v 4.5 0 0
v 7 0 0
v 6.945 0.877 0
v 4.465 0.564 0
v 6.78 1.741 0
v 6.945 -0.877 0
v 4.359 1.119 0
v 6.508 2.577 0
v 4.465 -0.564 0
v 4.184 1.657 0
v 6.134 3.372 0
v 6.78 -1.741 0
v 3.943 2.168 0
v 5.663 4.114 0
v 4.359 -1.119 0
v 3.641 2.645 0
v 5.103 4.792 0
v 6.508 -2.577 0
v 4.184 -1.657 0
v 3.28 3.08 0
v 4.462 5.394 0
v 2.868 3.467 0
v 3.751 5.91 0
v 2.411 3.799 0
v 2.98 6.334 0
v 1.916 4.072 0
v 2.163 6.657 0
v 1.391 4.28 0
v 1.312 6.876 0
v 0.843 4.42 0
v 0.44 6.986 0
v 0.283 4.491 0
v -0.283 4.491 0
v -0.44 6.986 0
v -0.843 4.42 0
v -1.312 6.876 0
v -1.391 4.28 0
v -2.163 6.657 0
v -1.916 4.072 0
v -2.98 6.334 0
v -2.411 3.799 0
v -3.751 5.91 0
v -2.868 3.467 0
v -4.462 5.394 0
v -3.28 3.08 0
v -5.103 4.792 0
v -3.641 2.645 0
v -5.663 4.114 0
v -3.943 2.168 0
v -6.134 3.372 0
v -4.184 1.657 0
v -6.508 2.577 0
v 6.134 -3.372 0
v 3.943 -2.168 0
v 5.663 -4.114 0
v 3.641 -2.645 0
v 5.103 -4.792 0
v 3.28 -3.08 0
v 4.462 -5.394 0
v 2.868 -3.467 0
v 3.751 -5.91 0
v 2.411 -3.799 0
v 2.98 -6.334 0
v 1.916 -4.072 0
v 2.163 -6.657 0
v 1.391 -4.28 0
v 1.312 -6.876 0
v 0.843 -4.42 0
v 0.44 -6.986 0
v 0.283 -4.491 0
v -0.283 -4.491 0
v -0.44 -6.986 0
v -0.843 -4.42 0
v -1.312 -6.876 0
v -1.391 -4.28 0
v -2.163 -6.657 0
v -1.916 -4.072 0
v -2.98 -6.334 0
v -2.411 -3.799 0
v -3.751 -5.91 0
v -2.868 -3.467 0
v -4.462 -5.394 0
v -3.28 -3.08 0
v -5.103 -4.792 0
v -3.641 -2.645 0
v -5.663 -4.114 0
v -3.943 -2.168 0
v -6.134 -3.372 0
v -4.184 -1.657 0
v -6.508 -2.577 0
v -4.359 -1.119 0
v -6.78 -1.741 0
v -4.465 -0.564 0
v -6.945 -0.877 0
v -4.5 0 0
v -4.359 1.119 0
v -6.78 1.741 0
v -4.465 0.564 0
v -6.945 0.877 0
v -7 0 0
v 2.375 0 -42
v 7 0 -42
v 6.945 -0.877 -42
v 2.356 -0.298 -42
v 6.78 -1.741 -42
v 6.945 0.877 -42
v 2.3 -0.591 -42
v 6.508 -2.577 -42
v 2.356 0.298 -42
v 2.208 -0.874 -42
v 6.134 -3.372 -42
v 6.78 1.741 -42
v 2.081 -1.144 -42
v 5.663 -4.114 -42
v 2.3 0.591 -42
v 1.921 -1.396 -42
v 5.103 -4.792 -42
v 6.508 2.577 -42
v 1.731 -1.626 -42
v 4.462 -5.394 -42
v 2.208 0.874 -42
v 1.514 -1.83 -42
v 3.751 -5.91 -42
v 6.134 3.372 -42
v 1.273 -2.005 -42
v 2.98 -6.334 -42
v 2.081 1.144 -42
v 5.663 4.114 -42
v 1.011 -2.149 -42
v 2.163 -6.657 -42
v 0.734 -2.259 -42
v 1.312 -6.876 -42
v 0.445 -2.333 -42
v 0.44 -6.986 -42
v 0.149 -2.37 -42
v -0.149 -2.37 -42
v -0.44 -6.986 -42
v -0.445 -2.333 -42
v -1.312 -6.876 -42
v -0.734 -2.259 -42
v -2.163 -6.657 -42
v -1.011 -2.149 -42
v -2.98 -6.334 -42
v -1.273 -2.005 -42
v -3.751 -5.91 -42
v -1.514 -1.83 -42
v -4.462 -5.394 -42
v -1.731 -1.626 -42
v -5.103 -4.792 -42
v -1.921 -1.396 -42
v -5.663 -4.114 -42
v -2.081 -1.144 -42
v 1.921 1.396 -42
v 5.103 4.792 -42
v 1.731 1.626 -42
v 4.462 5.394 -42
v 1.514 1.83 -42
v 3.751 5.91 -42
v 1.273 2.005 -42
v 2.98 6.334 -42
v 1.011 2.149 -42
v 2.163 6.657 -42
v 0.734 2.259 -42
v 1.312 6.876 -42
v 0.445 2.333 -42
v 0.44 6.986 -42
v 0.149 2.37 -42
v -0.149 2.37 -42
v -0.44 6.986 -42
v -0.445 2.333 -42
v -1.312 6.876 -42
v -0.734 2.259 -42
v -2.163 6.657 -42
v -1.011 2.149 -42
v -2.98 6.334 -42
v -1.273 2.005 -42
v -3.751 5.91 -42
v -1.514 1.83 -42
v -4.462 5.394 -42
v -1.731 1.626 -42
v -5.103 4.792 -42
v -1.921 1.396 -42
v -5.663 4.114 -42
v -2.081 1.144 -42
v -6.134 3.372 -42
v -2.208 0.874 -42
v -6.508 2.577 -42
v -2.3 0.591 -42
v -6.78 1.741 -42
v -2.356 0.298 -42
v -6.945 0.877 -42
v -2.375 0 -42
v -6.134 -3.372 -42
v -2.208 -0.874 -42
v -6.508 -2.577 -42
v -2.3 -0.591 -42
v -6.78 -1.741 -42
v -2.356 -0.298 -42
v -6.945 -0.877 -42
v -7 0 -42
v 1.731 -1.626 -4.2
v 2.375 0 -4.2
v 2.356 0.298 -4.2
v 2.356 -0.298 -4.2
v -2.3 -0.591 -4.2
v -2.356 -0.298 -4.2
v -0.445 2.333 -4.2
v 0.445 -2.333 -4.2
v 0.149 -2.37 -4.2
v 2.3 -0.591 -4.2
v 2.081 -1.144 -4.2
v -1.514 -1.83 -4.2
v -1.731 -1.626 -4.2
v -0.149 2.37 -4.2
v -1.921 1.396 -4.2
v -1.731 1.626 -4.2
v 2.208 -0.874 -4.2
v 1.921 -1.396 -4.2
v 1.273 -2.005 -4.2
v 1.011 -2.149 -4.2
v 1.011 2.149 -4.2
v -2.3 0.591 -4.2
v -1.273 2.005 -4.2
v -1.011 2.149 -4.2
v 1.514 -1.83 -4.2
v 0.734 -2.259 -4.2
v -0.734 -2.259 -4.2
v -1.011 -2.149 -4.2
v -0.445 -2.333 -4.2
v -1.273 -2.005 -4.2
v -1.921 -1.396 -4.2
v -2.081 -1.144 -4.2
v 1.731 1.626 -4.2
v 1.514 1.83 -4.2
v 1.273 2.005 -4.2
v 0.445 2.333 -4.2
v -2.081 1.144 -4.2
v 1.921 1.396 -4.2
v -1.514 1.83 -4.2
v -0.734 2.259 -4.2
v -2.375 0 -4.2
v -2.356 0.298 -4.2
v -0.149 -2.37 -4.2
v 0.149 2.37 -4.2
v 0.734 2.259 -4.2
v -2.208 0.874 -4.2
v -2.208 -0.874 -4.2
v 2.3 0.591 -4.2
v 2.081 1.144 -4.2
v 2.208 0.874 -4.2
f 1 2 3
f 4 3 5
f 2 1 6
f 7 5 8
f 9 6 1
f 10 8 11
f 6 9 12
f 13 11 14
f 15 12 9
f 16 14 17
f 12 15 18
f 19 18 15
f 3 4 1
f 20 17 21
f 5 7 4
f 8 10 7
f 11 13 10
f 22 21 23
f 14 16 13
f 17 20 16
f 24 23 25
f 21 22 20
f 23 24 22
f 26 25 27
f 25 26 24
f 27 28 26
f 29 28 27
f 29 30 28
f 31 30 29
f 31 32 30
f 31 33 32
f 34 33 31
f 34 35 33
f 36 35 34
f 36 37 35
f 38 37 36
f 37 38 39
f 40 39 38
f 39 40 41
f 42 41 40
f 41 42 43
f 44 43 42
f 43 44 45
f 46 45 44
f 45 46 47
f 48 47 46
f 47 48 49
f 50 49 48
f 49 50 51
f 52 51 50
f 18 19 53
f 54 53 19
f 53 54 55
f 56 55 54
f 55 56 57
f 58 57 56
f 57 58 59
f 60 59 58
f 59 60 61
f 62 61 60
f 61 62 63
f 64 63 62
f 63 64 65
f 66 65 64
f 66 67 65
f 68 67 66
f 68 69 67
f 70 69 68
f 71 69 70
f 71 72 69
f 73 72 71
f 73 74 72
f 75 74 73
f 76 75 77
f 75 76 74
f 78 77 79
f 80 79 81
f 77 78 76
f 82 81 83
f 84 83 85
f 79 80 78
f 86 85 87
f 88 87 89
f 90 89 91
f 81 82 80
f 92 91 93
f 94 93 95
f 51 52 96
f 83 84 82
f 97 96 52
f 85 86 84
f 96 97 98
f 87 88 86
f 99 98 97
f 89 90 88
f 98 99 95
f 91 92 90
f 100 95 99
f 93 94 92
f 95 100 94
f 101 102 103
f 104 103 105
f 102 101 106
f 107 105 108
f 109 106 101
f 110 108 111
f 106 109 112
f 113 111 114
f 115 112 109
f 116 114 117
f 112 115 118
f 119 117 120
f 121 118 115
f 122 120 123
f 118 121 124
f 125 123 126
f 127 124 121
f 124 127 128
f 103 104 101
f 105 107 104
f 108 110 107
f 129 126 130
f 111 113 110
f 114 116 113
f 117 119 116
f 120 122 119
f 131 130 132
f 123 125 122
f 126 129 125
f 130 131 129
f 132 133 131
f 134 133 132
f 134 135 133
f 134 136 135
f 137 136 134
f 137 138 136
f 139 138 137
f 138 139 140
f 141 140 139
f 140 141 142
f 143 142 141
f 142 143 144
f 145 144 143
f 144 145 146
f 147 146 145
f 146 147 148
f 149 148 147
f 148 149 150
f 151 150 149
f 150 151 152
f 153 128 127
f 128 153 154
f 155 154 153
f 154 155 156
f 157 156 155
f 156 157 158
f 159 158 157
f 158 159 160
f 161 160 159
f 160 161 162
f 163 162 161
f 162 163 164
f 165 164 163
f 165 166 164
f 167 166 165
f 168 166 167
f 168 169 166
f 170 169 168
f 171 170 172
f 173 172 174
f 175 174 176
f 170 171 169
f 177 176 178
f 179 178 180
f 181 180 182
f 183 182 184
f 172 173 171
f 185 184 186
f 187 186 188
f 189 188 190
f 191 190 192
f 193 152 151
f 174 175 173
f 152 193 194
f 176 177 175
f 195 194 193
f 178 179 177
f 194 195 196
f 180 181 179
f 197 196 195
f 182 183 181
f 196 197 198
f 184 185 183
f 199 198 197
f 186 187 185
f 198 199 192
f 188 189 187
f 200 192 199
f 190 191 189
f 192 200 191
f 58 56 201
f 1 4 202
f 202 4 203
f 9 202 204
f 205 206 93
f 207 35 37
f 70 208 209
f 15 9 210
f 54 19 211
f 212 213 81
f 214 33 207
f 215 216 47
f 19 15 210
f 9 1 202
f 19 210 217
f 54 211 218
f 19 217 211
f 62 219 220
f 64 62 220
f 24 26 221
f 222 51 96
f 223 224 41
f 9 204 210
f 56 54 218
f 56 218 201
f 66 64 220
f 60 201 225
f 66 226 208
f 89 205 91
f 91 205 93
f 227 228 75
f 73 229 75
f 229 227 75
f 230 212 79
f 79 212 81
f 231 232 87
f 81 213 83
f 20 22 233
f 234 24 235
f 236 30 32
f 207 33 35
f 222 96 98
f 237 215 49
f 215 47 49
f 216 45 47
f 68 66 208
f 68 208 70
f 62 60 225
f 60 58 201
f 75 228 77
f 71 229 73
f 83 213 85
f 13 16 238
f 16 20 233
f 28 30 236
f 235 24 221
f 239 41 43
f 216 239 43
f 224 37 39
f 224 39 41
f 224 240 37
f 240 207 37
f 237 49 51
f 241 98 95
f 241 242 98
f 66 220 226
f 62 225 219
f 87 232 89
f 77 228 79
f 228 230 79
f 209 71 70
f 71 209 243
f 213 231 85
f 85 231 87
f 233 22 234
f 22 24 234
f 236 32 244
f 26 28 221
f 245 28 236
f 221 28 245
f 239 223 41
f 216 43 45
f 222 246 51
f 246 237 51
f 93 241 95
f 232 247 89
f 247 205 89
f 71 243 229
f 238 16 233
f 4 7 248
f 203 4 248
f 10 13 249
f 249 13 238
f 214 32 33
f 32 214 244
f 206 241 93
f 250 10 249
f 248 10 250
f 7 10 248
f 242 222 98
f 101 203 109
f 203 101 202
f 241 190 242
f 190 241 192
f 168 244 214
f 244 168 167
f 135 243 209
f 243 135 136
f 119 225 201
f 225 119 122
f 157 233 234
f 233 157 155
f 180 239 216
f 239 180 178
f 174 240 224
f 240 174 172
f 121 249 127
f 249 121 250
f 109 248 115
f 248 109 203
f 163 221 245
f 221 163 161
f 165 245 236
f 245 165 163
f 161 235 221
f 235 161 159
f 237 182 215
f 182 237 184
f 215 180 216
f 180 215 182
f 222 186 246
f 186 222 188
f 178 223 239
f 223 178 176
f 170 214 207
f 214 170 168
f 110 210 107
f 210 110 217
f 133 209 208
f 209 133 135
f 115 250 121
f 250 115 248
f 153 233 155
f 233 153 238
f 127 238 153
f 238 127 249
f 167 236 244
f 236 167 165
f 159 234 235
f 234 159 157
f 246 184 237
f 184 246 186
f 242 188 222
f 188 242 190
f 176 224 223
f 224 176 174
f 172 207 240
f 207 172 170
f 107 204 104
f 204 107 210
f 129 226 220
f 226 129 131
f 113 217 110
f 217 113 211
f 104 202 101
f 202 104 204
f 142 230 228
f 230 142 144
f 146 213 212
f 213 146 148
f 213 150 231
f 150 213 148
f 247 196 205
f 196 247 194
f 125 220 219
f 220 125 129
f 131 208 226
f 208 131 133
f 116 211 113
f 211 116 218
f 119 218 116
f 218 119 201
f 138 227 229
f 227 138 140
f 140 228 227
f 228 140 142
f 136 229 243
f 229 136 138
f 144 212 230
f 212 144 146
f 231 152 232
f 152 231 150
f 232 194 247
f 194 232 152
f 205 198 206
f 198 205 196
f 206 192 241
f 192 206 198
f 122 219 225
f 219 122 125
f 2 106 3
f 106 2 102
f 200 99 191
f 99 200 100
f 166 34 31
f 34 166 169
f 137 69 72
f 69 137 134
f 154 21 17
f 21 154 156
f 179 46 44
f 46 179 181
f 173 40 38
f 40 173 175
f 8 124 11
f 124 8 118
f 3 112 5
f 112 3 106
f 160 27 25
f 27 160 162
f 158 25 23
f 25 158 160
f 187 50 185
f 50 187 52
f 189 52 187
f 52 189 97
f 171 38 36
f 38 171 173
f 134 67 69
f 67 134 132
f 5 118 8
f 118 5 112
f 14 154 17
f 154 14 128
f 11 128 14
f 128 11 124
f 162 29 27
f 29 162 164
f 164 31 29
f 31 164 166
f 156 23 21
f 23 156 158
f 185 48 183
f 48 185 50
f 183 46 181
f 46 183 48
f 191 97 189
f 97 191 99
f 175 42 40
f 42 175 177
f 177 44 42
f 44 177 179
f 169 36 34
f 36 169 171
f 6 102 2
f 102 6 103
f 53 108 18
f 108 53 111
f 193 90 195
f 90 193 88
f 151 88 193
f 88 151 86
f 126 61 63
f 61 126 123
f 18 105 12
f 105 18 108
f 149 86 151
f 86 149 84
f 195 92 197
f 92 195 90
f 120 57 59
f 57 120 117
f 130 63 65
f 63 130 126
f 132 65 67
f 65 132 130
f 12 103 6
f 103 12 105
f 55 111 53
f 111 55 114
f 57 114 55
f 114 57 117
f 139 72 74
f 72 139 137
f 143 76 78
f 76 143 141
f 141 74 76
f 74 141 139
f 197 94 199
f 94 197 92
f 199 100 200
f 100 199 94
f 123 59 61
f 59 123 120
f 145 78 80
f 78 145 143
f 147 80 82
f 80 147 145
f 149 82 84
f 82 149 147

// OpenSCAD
$fn = 50;


difference() {
	union() {
		translate(v = [0, 0, -42.0000000000]) {
			cylinder(h = 42, r = 7.0000000000);
		}
		cylinder(h = 0, r = 10.0000000000);
	}
	union() {
		translate(v = [0, 0, 0]) {
			rotate(a = [0, 0, 0]) {
				difference() {
					union() {
						#translate(v = [0, 0, -42.0000000000]) {
							cylinder(h = 42, r = 2.2500000000);
						}
						#translate(v = [0, 0, -4.2000000000]) {
							cylinder(h = 4.2000000000, r1 = 2.3750000000, r2 = 4.5000000000);
						}
						#translate(v = [0, 0, -42.0000000000]) {
							cylinder(h = 42, r = 2.3750000000);
						}
						#translate(v = [0, 0, -42.0000000000]) {
							cylinder(h = 42, r = 2.2500000000);
						}
					}
					union();
				}
			}
		}
	}
}
